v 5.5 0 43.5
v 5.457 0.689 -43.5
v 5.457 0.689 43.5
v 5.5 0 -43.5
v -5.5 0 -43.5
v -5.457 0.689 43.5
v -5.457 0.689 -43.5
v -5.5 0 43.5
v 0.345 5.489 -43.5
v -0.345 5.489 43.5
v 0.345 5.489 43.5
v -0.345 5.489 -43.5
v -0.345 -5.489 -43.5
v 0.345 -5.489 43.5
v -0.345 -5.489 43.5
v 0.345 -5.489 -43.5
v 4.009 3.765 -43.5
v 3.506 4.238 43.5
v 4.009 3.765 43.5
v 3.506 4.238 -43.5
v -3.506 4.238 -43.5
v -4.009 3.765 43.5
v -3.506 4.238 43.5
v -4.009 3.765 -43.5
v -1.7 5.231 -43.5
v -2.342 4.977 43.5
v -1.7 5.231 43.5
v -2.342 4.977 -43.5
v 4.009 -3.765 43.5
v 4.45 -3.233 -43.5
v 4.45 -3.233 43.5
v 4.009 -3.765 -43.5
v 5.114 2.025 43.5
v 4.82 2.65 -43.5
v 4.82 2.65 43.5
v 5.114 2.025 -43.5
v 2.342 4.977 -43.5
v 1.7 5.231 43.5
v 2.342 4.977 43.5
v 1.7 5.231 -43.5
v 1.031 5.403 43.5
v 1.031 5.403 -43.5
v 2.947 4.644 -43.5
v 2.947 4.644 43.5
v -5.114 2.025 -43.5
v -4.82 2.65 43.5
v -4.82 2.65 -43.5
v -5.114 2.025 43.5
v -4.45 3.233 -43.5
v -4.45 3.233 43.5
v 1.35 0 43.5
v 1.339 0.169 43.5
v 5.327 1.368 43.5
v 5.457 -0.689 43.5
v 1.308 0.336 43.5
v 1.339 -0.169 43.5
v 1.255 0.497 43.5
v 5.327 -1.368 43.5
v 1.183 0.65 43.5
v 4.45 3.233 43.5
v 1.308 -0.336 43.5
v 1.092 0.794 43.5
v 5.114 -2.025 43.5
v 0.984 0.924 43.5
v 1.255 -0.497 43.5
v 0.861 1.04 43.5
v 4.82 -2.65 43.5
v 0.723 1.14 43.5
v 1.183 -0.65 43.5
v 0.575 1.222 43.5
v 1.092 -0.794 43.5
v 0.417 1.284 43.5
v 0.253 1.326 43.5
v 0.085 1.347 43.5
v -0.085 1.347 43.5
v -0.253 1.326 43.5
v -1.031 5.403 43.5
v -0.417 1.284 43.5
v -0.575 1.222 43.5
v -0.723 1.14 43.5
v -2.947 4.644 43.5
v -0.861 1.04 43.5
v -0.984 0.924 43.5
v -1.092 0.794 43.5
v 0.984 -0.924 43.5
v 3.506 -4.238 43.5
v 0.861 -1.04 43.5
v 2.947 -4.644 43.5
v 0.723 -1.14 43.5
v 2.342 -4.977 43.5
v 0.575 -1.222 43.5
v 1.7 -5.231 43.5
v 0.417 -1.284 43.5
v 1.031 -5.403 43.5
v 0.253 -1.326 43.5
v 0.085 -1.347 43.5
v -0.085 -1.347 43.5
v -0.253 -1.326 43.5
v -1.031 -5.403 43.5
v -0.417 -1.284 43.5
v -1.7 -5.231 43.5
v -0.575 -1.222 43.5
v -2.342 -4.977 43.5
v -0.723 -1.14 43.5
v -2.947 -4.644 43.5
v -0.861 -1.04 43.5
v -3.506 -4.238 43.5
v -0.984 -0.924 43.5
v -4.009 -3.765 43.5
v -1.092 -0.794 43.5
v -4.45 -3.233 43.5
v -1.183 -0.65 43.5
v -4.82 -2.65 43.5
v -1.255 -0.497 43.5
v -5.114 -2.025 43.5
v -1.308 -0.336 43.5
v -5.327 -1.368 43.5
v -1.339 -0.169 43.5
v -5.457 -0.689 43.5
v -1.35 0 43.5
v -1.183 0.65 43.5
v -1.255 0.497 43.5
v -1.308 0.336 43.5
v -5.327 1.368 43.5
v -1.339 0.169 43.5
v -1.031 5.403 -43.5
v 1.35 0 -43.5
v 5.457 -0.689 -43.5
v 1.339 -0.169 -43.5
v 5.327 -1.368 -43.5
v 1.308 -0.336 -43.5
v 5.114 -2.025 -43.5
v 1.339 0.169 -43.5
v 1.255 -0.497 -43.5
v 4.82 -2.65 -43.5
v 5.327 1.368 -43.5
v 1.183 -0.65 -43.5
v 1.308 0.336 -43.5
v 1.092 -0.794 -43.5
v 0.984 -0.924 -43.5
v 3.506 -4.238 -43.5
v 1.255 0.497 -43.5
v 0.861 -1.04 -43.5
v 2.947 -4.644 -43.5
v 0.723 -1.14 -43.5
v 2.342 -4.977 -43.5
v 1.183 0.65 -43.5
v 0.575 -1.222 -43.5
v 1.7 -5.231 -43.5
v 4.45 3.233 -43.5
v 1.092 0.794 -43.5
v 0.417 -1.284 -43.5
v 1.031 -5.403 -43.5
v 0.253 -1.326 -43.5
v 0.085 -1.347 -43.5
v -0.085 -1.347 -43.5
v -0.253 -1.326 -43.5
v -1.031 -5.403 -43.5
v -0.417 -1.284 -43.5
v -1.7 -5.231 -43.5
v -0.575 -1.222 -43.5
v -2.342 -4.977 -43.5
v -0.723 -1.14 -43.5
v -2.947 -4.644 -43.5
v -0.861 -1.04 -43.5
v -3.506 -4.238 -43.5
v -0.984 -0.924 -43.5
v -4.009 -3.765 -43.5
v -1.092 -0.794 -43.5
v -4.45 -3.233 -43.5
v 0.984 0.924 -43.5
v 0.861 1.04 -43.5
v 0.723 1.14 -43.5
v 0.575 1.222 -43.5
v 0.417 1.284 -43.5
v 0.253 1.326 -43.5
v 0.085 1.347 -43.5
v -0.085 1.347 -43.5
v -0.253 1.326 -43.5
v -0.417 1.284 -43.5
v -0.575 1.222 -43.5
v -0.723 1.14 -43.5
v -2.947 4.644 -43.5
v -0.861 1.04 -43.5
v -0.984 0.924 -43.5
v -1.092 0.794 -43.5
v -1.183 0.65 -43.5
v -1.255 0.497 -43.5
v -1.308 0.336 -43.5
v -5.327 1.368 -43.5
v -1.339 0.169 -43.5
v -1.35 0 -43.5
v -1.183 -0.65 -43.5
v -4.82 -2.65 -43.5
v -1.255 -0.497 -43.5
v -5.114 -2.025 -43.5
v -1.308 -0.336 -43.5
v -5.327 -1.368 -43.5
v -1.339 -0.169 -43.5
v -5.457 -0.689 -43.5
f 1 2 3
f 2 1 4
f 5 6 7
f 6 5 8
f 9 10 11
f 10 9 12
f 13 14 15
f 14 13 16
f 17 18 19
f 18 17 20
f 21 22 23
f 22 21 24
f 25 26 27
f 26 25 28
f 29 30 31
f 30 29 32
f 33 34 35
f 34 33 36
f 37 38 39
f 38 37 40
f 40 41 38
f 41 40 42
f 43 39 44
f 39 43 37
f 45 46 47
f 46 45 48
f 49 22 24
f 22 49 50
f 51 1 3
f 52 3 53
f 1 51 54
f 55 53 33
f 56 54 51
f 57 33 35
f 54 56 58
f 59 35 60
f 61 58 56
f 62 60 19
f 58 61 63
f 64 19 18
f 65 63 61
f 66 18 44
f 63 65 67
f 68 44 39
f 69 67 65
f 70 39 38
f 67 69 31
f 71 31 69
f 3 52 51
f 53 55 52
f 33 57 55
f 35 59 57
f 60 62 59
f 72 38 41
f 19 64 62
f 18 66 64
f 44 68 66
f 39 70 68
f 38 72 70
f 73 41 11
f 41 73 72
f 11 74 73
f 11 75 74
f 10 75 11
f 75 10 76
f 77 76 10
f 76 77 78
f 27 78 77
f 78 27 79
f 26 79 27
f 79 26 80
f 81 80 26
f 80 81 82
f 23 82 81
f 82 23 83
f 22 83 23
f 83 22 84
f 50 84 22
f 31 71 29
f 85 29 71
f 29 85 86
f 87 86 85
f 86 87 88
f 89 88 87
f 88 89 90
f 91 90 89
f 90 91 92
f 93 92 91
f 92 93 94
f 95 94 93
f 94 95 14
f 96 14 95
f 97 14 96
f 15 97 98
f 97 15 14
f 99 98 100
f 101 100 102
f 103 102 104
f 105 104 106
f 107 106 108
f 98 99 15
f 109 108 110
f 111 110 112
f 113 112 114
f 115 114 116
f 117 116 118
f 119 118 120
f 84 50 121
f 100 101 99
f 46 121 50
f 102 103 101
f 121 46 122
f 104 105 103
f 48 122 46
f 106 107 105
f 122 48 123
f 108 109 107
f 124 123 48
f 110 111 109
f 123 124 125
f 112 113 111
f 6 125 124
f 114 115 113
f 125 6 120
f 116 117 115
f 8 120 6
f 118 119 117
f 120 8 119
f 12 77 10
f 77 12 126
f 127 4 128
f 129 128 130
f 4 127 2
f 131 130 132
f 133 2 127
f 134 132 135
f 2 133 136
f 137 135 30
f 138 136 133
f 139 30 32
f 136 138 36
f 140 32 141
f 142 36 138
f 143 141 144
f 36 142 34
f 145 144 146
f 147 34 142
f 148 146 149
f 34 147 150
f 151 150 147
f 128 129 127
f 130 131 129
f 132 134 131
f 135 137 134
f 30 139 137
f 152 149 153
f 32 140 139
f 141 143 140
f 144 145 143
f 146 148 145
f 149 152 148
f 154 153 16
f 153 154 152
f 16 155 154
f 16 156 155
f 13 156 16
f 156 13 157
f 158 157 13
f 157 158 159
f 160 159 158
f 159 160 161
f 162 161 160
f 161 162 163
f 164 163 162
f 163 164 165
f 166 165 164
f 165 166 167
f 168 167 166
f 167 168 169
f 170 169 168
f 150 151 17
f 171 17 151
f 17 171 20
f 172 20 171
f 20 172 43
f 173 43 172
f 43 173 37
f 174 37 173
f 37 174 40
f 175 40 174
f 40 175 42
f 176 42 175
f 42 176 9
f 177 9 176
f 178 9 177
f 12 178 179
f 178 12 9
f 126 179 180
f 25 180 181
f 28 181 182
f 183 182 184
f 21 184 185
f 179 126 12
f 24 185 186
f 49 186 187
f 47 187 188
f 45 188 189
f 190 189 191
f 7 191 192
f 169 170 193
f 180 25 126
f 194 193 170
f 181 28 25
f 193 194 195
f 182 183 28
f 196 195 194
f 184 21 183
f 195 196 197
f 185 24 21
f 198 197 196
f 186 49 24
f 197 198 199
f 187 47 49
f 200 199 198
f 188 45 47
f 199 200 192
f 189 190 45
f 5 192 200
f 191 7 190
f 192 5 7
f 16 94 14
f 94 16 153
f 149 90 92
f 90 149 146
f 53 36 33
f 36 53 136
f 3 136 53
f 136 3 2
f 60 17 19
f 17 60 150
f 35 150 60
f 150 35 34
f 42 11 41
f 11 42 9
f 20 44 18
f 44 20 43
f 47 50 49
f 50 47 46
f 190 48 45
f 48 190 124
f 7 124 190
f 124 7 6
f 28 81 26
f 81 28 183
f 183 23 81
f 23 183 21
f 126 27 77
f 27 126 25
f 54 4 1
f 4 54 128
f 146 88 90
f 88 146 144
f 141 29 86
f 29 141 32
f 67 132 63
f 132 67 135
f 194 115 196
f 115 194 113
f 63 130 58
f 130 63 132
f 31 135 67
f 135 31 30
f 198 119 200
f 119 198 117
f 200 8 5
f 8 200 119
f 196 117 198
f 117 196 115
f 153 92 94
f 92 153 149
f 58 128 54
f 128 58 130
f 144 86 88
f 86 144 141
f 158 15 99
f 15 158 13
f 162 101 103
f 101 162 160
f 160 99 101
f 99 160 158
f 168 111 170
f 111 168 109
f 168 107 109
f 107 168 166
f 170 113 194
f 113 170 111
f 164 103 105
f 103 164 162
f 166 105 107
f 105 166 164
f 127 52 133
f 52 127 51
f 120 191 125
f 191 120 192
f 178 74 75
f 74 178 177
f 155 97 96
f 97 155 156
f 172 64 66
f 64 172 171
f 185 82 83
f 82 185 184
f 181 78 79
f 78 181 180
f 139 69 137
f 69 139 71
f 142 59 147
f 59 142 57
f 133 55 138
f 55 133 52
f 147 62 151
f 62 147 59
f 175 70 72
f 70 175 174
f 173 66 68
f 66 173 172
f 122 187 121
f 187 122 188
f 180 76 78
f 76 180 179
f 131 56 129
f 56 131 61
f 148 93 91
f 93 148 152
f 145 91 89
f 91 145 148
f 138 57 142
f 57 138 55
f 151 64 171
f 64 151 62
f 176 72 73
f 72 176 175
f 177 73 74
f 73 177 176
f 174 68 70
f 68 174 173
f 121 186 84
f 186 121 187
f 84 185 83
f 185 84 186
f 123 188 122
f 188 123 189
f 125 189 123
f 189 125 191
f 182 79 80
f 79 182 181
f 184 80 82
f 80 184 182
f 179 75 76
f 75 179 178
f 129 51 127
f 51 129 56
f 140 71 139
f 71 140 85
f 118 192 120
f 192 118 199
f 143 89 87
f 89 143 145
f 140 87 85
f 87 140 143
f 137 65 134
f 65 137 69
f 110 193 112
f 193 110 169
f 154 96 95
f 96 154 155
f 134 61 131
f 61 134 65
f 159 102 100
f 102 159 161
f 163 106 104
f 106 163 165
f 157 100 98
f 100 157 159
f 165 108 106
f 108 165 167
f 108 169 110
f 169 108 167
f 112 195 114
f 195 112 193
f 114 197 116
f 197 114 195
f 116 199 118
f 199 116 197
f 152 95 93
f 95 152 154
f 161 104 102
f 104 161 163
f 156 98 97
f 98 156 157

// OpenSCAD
$fn = 50;


difference() {
	union() {
		translate(v = [0, 0, -43.5000000000]) {
			cylinder(h = 87, r = 5.5000000000);
		}
	}
	union() {
		translate(v = [0, 0, -100.0000000000]) {
			cylinder(h = 200, r = 1.3500000000);
		}
	}
}
